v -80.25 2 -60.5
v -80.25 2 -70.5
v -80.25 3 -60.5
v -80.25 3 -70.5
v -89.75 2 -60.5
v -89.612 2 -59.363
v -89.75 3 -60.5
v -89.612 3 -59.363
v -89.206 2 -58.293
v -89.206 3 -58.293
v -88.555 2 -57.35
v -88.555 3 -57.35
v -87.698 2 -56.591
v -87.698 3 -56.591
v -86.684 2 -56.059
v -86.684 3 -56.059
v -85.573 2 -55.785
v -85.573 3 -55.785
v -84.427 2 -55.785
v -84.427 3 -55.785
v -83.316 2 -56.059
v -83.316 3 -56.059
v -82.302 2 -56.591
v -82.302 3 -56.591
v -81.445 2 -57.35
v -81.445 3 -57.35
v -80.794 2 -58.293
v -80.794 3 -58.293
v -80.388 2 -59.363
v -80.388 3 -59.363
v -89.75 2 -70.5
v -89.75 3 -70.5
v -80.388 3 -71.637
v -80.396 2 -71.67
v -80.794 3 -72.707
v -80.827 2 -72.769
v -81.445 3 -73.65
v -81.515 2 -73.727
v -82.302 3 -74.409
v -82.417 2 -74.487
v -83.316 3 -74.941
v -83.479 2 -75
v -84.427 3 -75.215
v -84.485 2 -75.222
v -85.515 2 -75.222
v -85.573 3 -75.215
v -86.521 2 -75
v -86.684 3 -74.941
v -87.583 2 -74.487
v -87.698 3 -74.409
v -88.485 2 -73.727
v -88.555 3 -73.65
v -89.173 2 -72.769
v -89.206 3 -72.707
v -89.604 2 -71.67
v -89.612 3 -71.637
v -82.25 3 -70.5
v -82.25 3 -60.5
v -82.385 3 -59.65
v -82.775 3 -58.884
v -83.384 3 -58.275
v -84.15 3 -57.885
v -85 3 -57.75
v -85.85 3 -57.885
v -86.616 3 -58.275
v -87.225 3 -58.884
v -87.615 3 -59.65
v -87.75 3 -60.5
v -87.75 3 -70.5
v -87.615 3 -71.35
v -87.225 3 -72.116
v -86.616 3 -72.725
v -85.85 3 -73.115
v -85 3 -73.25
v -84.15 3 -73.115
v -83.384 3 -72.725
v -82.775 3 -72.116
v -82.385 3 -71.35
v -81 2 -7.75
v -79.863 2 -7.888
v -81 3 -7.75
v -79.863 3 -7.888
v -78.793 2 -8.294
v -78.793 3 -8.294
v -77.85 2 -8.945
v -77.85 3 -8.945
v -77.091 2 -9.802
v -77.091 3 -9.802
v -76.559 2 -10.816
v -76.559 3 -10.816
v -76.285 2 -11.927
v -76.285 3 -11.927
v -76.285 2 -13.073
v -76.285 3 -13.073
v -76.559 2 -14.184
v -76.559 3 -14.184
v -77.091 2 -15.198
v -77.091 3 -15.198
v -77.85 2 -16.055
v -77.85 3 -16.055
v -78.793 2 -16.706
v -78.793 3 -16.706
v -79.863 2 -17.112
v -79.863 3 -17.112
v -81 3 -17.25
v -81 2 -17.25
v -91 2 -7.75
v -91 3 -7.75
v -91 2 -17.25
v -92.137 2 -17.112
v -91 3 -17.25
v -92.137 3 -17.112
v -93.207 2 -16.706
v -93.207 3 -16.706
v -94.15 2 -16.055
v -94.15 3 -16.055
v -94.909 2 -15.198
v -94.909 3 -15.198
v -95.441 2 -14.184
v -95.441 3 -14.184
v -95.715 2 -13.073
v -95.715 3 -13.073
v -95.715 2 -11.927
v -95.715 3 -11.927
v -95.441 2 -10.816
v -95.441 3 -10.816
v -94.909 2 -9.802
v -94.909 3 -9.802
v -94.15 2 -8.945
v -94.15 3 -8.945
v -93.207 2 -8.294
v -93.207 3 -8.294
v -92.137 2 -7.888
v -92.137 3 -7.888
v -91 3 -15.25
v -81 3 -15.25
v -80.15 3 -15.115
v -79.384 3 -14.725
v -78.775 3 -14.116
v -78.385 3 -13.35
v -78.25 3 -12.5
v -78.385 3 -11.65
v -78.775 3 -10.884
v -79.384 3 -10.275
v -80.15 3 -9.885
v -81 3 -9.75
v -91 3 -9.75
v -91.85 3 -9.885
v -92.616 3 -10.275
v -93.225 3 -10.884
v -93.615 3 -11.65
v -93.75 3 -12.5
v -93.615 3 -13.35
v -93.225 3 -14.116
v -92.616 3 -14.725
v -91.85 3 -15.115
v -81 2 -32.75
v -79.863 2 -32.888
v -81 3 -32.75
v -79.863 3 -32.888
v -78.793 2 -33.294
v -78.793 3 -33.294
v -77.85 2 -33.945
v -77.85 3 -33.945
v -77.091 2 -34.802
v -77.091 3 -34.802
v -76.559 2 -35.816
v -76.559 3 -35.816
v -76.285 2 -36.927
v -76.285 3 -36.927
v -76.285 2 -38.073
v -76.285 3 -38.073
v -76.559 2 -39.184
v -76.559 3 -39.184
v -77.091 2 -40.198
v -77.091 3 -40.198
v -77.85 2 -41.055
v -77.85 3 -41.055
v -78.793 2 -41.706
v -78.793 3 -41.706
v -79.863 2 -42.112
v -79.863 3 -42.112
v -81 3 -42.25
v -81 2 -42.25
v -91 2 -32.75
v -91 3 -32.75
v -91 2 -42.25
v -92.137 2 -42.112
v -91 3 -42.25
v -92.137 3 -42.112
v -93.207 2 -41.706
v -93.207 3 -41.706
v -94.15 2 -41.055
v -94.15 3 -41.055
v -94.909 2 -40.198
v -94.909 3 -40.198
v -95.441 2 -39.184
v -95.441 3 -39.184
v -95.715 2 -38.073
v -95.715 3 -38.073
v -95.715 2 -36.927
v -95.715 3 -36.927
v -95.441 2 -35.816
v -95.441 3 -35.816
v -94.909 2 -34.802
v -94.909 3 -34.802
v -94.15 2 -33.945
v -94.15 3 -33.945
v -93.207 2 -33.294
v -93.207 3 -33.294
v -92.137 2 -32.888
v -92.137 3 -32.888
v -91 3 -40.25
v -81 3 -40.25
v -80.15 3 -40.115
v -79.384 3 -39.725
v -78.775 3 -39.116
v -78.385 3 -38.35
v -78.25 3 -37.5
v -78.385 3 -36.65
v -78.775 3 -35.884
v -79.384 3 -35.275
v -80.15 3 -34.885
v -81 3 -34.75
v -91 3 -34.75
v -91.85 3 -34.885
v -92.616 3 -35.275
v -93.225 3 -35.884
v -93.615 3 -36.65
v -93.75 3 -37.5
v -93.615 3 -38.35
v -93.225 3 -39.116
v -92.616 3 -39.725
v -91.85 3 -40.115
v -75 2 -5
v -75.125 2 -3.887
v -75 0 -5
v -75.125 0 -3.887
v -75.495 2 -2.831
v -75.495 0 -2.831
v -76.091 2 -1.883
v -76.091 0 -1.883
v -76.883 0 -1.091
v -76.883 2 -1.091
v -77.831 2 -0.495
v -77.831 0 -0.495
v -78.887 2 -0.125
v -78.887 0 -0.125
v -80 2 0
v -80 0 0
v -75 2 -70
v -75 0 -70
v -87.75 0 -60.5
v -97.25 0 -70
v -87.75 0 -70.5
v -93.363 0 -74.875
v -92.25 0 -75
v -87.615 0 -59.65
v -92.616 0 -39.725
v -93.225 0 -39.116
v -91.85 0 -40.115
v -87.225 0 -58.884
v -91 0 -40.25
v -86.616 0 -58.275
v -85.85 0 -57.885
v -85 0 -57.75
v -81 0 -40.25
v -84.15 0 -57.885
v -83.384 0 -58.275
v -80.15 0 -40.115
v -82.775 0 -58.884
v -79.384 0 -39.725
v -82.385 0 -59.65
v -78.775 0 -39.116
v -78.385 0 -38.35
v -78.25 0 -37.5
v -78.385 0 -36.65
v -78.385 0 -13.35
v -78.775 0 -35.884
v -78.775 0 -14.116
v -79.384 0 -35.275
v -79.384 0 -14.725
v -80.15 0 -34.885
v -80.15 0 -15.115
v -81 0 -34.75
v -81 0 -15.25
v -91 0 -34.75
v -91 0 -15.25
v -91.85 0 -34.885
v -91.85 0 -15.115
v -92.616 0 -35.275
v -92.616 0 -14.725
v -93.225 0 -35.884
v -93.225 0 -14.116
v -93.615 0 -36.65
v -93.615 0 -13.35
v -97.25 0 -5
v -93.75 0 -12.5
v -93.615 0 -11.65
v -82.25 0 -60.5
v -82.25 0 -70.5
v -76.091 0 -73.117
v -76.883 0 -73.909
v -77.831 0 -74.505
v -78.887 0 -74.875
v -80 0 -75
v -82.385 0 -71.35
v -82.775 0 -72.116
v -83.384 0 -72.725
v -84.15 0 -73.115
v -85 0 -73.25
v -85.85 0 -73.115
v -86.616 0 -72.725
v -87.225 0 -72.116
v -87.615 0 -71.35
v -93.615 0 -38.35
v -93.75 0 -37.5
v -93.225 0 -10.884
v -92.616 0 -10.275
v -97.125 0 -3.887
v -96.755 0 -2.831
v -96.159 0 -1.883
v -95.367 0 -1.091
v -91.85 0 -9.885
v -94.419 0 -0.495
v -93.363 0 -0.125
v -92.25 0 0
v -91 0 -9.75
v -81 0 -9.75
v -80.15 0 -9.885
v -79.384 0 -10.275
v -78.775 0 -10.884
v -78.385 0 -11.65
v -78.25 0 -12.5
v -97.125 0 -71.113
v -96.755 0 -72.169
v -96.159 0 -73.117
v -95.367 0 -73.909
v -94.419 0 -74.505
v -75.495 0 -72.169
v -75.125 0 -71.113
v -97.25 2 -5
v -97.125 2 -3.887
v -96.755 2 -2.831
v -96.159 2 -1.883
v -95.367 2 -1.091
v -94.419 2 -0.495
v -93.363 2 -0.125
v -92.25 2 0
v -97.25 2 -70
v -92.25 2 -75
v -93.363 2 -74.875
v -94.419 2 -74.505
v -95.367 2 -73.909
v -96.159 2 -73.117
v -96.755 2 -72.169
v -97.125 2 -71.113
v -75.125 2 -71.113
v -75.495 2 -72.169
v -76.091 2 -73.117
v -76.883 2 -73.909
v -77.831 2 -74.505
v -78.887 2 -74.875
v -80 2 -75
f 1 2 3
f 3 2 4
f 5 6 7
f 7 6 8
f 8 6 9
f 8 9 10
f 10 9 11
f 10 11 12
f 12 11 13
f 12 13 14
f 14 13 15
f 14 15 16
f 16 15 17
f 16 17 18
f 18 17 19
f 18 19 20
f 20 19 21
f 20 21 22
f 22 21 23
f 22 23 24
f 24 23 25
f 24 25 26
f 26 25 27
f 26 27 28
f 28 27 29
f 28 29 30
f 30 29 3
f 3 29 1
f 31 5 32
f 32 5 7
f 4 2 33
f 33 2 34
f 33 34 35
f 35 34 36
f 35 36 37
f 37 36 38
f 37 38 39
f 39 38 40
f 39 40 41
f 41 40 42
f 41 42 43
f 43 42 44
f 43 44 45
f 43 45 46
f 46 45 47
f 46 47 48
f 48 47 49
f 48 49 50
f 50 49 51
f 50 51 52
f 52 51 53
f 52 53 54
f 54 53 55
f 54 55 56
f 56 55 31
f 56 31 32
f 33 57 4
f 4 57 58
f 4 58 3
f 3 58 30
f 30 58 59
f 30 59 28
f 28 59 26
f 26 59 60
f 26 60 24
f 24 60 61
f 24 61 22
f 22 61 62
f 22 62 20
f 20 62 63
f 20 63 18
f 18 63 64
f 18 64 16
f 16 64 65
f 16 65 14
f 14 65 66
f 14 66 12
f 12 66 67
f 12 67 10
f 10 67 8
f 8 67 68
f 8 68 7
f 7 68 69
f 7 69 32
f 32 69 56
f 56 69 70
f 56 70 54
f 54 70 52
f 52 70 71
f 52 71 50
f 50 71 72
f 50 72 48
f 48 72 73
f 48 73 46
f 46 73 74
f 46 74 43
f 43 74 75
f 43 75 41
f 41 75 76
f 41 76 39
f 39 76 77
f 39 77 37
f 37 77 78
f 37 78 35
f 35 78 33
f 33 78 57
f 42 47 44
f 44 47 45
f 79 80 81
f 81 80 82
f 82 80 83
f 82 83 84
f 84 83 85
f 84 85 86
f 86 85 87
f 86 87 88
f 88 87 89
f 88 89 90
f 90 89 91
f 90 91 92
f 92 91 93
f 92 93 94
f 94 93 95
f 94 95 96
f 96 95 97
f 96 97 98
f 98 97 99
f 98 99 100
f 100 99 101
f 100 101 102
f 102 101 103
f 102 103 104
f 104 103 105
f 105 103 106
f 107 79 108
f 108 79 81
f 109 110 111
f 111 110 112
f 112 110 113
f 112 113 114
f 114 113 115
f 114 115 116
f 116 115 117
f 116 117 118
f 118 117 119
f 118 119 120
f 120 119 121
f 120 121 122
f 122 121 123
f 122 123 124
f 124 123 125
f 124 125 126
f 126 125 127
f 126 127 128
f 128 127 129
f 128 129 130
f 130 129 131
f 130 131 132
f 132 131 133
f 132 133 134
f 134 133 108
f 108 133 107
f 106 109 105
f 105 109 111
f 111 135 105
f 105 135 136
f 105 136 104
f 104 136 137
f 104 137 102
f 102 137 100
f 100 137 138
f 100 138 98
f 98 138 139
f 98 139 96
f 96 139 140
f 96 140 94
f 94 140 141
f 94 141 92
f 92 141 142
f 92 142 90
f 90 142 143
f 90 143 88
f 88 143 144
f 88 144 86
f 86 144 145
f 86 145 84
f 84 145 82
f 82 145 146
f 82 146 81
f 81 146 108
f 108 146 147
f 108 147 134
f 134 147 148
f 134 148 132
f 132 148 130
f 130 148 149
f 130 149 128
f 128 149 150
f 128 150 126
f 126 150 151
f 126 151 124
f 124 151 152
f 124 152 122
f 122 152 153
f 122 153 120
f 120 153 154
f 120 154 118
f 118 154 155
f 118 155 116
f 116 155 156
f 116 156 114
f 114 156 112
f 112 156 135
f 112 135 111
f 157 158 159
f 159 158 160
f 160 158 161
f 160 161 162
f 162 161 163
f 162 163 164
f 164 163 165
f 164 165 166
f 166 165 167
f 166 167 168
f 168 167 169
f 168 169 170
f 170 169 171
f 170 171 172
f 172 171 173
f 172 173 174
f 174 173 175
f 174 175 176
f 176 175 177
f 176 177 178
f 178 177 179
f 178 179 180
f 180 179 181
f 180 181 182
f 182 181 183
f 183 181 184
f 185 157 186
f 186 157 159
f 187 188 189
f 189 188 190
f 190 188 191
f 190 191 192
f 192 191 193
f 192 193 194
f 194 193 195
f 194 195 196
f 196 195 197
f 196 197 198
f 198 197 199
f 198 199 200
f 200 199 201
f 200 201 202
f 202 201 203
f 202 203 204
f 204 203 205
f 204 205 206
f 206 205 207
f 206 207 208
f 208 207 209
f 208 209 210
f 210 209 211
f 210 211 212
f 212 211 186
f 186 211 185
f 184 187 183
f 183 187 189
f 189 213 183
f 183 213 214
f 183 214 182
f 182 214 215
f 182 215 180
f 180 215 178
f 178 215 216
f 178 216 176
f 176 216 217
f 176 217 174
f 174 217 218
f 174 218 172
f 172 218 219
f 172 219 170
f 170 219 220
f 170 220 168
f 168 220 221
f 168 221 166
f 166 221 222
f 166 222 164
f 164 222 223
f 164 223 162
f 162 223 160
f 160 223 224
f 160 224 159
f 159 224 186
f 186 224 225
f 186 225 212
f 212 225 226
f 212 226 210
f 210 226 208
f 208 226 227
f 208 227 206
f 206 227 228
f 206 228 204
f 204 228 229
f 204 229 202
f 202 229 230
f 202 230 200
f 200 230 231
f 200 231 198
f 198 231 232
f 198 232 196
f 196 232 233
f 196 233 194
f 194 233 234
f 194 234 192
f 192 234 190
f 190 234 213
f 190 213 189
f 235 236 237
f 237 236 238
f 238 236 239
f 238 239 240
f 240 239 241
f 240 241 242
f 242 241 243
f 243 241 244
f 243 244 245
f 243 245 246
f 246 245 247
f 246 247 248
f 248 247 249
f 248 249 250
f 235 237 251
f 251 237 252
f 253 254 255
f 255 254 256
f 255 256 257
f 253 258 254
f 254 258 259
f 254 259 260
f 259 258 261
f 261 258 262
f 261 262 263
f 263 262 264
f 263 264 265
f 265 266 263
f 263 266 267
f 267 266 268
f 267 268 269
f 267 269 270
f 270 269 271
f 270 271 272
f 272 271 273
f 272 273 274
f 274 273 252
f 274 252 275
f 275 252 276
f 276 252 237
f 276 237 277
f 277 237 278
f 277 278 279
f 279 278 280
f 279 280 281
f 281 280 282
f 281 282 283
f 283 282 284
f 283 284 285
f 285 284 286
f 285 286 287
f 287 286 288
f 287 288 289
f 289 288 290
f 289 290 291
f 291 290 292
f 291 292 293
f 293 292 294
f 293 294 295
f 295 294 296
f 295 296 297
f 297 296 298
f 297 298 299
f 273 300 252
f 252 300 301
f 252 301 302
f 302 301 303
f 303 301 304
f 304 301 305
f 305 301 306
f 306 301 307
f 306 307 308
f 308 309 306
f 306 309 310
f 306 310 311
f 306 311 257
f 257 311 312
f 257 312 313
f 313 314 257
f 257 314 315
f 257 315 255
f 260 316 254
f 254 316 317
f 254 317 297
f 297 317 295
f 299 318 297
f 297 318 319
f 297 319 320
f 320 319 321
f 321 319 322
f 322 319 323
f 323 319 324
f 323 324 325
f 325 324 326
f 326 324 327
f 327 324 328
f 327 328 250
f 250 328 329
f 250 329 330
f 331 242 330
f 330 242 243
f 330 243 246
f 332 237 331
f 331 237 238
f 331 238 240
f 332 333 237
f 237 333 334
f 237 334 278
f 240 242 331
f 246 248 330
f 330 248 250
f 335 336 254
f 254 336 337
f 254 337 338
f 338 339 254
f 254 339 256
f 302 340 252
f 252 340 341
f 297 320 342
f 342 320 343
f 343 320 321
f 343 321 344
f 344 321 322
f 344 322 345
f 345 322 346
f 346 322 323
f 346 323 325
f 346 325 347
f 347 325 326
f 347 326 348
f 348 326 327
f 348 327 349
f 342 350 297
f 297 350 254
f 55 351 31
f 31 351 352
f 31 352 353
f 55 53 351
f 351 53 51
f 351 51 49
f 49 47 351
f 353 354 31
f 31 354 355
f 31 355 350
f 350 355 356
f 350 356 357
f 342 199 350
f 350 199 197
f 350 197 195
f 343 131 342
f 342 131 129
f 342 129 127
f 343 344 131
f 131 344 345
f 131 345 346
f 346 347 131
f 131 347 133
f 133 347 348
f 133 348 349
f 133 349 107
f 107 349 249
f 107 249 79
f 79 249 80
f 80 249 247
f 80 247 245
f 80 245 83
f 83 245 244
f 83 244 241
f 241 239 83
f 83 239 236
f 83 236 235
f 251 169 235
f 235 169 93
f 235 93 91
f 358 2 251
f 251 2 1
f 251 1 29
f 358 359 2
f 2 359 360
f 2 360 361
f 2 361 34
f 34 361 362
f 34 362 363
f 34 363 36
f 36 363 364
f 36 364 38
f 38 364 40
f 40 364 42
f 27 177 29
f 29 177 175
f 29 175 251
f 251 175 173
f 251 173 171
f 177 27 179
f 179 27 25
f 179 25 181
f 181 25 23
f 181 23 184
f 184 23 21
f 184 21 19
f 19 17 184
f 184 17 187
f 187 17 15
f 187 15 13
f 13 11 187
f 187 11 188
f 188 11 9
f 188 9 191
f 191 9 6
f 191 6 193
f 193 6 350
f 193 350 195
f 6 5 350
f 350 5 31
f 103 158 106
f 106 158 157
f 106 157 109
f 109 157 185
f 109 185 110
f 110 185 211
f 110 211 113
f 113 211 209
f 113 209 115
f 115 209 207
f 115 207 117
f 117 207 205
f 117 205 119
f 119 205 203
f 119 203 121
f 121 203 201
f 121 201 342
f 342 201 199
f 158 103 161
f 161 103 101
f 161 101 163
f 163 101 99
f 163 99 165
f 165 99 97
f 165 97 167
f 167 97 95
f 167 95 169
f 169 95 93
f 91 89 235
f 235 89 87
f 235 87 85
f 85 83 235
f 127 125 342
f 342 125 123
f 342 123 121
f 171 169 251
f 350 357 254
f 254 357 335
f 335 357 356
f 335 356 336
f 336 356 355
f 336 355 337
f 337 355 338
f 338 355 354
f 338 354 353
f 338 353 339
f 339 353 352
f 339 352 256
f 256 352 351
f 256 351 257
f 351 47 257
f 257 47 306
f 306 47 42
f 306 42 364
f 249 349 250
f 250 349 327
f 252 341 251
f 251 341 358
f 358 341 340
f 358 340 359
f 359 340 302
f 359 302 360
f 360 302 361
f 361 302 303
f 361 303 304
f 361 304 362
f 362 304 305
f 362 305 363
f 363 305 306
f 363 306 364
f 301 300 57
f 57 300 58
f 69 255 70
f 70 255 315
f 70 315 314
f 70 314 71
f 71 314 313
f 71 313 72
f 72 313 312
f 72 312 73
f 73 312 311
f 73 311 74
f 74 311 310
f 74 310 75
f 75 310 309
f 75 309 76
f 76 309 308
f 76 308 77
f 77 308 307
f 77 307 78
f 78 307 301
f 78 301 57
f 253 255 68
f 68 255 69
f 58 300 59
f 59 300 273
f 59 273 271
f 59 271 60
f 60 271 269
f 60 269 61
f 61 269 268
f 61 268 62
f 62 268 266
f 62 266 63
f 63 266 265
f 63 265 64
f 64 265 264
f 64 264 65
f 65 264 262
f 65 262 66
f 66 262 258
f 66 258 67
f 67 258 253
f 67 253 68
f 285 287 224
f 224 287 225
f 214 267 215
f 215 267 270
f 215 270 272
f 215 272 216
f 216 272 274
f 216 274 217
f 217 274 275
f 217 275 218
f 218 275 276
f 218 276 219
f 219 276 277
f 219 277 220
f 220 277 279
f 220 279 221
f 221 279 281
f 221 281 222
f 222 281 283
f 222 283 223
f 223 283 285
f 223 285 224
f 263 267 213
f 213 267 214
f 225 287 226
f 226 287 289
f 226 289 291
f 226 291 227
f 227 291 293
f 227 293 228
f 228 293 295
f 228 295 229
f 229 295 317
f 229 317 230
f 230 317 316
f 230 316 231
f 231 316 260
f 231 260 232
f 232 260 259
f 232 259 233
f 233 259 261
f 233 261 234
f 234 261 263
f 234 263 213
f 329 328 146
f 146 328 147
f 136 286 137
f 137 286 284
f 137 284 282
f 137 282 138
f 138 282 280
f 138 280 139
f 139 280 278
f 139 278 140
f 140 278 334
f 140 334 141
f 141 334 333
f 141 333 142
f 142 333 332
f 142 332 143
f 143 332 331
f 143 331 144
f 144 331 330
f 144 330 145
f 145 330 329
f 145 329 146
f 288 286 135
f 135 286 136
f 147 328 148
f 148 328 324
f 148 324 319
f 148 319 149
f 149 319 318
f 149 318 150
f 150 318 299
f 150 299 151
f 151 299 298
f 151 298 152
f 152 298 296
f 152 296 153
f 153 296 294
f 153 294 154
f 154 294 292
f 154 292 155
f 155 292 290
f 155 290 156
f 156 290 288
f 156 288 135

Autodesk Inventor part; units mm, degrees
ref_plane "YZ Plane" through (0, 0, 0) normal (1, 0, 0) x (0, 1, 0)
ref_plane "XZ Plane" through (0, 0, 0) normal (0, 1, 0) x (-1, 0, 0)
ref_plane "XY Plane" through (0, 0, 0) normal (0, 0, 1) x (1, 0, 0)
sketch "Sketch1" plane through (0, 0, 0) normal (0, 1, 0) x (-1, 0, 0)
  line L0 (0, 0) -> (105, 0)
  line L1 (105, 0) -> (105, -50)
  line L2 (105, -50) -> (0, -50)
  line L3 (0, -50) -> (0, 0)
  line L4 (0, 0) -> (0, -16.6667)
  line L5 (0, -16.6667) -> (11, -16.6667)
  dimension "d0" = 105
  dimension "d1" = 50
  dimension "d2" = 16.6667
  dimension "d3" = 11
extrude "Extrusion1" add sketch "Sketch1" along normal blind 2
sketch "Sketch3" plane through (0, 2, 0) normal (0, 1, 0) x (1, 0, 0)
  circle A0 centre (-20, 12.5) radius 2.75
  line L0 (0, 0) -> (0, 50) projected
  line L1 (-105, 0) -> (0, 0) projected
  circle A1 centre (-20, 37.5) radius 2.75
  dimension "d21" = 5.5
  dimension "d22" = 20
  dimension "d23" = 12.5
  dimension "d26" = 25
extrude "Extrusion3" cut sketch "Sketch3" against normal through all
sketch "Sketch4" plane through (0, 2, 0) normal (0, 1, 0) x (1, 0, 0)
  circle A0 centre (-20, 12.5) radius 2.75 projected
  line L0 (-20, 12.5) -> (-81, 12.5)
  line L1 (-81, 12.5) -> (-91, 12.5) construction
  line L2 (-81, 15.25) -> (-91, 15.25)
  line L3 (-91, 9.75) -> (-81, 9.75)
  arc A1 (-81, 9.75) -> (-81, 15.25) centre (-81, 12.5) ccw
  arc A2 (-91, 15.25) -> (-91, 9.75) centre (-91, 12.5) ccw
  point P0 (0, 0)
  point P1 (-86, 12.5)
  dimension "d33" = 61
  dimension "d34" = 10
  dimension "d35" = 5.5
extrude "Extrusion4" cut sketch "Sketch4" against normal through all contours A1 L3 A2 L2
pattern_linear "Rectangular Pattern2" count 2 spacing 25 along (0, 0, -1) of "Extrusion4"
sketch "Sketch5" plane through (0, 0, -50) normal (0, 0, -1) x (-1, 0, 0)
  line L0 (105, 0) -> (105, 2) projected
  line L1 (105, 0) -> (0, 0) projected
  line L2 (105, 2) -> (75, 2)
  line L3 (75, 2) -> (75, 0)
  line L4 (75, 0) -> (105, 0)
  line L5 (105, 0) -> (105, 2)
  dimension "d45" = 30
extrude "Extrusion5" add sketch "Sketch5" along normal blind 25
sketch "Sketch6" plane through (0, 2, 0) normal (0, 1, 0) x (1, 0, 0)
  line L0 (-85, 60.5) -> (-85, 70.5) construction
  line L1 (-82.25, 60.5) -> (-82.25, 70.5)
  line L2 (-87.75, 70.5) -> (-87.75, 60.5)
  arc A0 (-87.75, 60.5) -> (-82.25, 60.5) centre (-85, 60.5) ccw
  arc A1 (-82.25, 70.5) -> (-87.75, 70.5) centre (-85, 70.5) ccw
  line L3 (-75, 50) -> (-75, 75) projected
  arc A2 (-91, 40.25) -> (-91, 34.75) centre (-91, 37.5) ccw projected
  point P0 (0, 0)
  point P1 (-85, 65.5)
  dimension "d48" = 10
  dimension "d49" = 5.5
  dimension "d50" = 10
  dimension "d51" = 28
extrude "Extrusion6" cut sketch "Sketch6" against normal through all
fillet "Fillet2" radius 5 6 edges at (-105, 1, 0) (0, 1, 0) (-75, 1, -75) (-105, 1, -75) (0, 1, -50) (-75, 1, -50)
sketch "Sketch7" plane through (0, 2, 0) normal (0, 1, 0) x (1, 0, 0)
  circle A0 centre (-20, 12.5) radius 2.75 projected
  line L0 (-20, 12.5) -> (-42, 12.5)
  line L1 (-42, 12.5) -> (-62, 12.5)
  circle A1 centre (-62, 12.5) radius 2.75
  circle A2 centre (-42, 12.5) radius 2.75
  line L2 (0, 5) -> (0, 45) projected
  line L3 (0, 0) -> (0, 45)
  circle A3 centre (-42, 37.5) radius 2.75
  circle A4 centre (-62, 37.5) radius 2.75
  dimension "d55" = 22
  dimension "d56" = 20
  dimension "d57" = 5.5
  dimension "d58" = 5.5
  dimension "d61" = 25
extrude "Extrusion7" cut sketch "Sketch7" against normal through all contours A1 | A2 L1 L0 | L0 L1 A2 | A3 | A4
sketch "Sketch9" plane through (0, 2, 0) normal (0, 1, 0) x (1, 0, 0)
  point P0 (0, 0)
sketch "Sketch10" plane through (0, 2, 0) normal (0, 1, 0) x (1, 0, 0)
  circle A0 centre (-100, 70) radius 2.75
  line L0 (-100, 75) -> (-80, 75) projected
  line L1 (-105, 5) -> (-105, 70) projected
  circle A1 centre (-100, 5) radius 2.75
  line L2 (-100, 0) -> (-5, 0) projected
  circle A2 centre (-5, 45) radius 2.75
  line L3 (-5, 50) -> (-70, 50) projected
  line L4 (0, 5) -> (0, 45) projected
  circle A3 centre (-5, 5) radius 2.75
  point P0 (0, 0)
  dimension "d70" = 5.5
  dimension "d71" = 5
  dimension "d72" = 5
  dimension "d73" = 5.5
  dimension "d74" = 5
  dimension "d75" = 5
  dimension "d76" = 5.5
  dimension "d77" = 5
  dimension "d78" = 5
  dimension "d79" = 5.5
  dimension "d80" = 5
  dimension "d81" = 5
extrude "Extrusion9" cut sketch "Sketch10" against normal through all
sketch "Sketch11" plane through (0, 2, 0) normal (0, 1, 0) x (1, 0, 0)
  circle A0 centre (-20, 37.5) radius 2.75 projected
  line L0 (-20, 37.5) -> (-75, 37.5)
  line L1 (-75, 55) -> (-75, 70) projected
  line L2 (-75, 70) -> (-75, -9.6878)
  arc A1 (-75, 70) -> (-80, 75) centre (-80, 70) ccw projected
  line L3 (-75, 70) -> (-75, 84.2747)
  line L4 (-75, 84.2747) -> (39.8676, 84.2747)
  line L5 (39.8676, 84.2747) -> (39.8676, -9.6878)
  line L6 (39.8676, -9.6878) -> (-75, -9.6878)
  line L7 (-75, -9.6878) -> (-75, 84.2747)
  point P0 (0, 0)
  dimension "d86" = 55
extrude "Extrusion10" cut sketch "Sketch11" against normal through all
sketch "Sketch12" plane through (0, 2, 0) normal (0, 1, 0) x (1, 0, 0)
  line L0 (-108.4427, 0) -> (-97.25, 0)
  line L1 (-97.25, 0) -> (-97.25, 76.8209)
  line L2 (-97.25, 76.8209) -> (-108.4427, 76.8209)
  line L3 (-108.4427, 76.8209) -> (-108.4427, 0)
  point P0 (0, 0)
extrude "Extrusion11" cut sketch "Sketch12" against normal through all
fillet "Fillet3" radius 5 3 edges at (-97.25, 1, -75) (-97.25, 1, 0) (-75, 1, 0)
sketch "Sketch13" plane through (0, 2, 0) normal (0, 1, 0) x (1, 0, 0)
  arc A0 (-91, 40.25) -> (-91, 34.75) centre (-91, 37.5) ccw projected
  arc A1 (-81, 34.75) -> (-81, 40.25) centre (-81, 37.5) ccw projected
  line L0 (-91, 37.5) -> (-81, 37.5) construction
  line L1 (-91, 34.75) -> (-81, 34.75)
  line L2 (-81, 40.25) -> (-91, 40.25)
  arc A2 (-91, 40.25) -> (-91, 34.75) centre (-91, 37.5) ccw
  arc A3 (-81, 34.75) -> (-81, 40.25) centre (-81, 37.5) ccw
  arc A4 (-91, 15.25) -> (-91, 9.75) centre (-91, 12.5) ccw projected
  arc A5 (-81, 9.75) -> (-81, 15.25) centre (-81, 12.5) ccw projected
  line L3 (-91, 12.5) -> (-81, 12.5) construction
  line L4 (-91, 9.75) -> (-81, 9.75)
  line L5 (-81, 15.25) -> (-91, 15.25)
  arc A6 (-91, 15.25) -> (-91, 9.75) centre (-91, 12.5) ccw
  arc A7 (-81, 9.75) -> (-81, 15.25) centre (-81, 12.5) ccw
  line L6 (-91, 17.25) -> (-81, 17.25)
  arc A8 (-81, 7.75) -> (-81, 17.25) centre (-81, 12.5) ccw
  line L7 (-81, 7.75) -> (-91, 7.75)
  arc A9 (-91, 17.25) -> (-91, 7.75) centre (-91, 12.5) ccw
  line L8 (-91, 42.25) -> (-81, 42.25)
  arc A10 (-81, 32.75) -> (-81, 42.25) centre (-81, 37.5) ccw
  line L9 (-81, 32.75) -> (-91, 32.75)
  arc A11 (-91, 42.25) -> (-91, 32.75) centre (-91, 37.5) ccw
  arc A12 (-87.75, 60.5) -> (-82.25, 60.5) centre (-85, 60.5) ccw projected
  arc A13 (-82.25, 70.5) -> (-87.75, 70.5) centre (-85, 70.5) ccw projected
  line L10 (-85, 60.5) -> (-85, 70.5) construction
  line L11 (-87.75, 60.5) -> (-87.75, 70.5)
  line L12 (-82.25, 70.5) -> (-82.25, 60.5)
  arc A14 (-87.75, 60.5) -> (-82.25, 60.5) centre (-85, 60.5) ccw
  arc A15 (-82.25, 70.5) -> (-87.75, 70.5) centre (-85, 70.5) ccw
  line L13 (-80.25, 60.5) -> (-80.25, 70.5)
  arc A16 (-80.25, 70.5) -> (-89.75, 70.5) centre (-85, 70.5) ccw
  line L14 (-89.75, 70.5) -> (-89.75, 60.5)
  arc A17 (-89.75, 60.5) -> (-80.25, 60.5) centre (-85, 60.5) ccw
  point P0 (0, 0)
  point P1 (-86, 37.5)
  point P2 (-86, 12.5)
  point P3 (-85, 65.5)
  dimension "d92" = 2
  dimension "d93" = 2
  dimension "d94" = 2
extrude "Extrusion12" add sketch "Sketch13" along normal blind 1
properties part number "Belt_Restraint"
